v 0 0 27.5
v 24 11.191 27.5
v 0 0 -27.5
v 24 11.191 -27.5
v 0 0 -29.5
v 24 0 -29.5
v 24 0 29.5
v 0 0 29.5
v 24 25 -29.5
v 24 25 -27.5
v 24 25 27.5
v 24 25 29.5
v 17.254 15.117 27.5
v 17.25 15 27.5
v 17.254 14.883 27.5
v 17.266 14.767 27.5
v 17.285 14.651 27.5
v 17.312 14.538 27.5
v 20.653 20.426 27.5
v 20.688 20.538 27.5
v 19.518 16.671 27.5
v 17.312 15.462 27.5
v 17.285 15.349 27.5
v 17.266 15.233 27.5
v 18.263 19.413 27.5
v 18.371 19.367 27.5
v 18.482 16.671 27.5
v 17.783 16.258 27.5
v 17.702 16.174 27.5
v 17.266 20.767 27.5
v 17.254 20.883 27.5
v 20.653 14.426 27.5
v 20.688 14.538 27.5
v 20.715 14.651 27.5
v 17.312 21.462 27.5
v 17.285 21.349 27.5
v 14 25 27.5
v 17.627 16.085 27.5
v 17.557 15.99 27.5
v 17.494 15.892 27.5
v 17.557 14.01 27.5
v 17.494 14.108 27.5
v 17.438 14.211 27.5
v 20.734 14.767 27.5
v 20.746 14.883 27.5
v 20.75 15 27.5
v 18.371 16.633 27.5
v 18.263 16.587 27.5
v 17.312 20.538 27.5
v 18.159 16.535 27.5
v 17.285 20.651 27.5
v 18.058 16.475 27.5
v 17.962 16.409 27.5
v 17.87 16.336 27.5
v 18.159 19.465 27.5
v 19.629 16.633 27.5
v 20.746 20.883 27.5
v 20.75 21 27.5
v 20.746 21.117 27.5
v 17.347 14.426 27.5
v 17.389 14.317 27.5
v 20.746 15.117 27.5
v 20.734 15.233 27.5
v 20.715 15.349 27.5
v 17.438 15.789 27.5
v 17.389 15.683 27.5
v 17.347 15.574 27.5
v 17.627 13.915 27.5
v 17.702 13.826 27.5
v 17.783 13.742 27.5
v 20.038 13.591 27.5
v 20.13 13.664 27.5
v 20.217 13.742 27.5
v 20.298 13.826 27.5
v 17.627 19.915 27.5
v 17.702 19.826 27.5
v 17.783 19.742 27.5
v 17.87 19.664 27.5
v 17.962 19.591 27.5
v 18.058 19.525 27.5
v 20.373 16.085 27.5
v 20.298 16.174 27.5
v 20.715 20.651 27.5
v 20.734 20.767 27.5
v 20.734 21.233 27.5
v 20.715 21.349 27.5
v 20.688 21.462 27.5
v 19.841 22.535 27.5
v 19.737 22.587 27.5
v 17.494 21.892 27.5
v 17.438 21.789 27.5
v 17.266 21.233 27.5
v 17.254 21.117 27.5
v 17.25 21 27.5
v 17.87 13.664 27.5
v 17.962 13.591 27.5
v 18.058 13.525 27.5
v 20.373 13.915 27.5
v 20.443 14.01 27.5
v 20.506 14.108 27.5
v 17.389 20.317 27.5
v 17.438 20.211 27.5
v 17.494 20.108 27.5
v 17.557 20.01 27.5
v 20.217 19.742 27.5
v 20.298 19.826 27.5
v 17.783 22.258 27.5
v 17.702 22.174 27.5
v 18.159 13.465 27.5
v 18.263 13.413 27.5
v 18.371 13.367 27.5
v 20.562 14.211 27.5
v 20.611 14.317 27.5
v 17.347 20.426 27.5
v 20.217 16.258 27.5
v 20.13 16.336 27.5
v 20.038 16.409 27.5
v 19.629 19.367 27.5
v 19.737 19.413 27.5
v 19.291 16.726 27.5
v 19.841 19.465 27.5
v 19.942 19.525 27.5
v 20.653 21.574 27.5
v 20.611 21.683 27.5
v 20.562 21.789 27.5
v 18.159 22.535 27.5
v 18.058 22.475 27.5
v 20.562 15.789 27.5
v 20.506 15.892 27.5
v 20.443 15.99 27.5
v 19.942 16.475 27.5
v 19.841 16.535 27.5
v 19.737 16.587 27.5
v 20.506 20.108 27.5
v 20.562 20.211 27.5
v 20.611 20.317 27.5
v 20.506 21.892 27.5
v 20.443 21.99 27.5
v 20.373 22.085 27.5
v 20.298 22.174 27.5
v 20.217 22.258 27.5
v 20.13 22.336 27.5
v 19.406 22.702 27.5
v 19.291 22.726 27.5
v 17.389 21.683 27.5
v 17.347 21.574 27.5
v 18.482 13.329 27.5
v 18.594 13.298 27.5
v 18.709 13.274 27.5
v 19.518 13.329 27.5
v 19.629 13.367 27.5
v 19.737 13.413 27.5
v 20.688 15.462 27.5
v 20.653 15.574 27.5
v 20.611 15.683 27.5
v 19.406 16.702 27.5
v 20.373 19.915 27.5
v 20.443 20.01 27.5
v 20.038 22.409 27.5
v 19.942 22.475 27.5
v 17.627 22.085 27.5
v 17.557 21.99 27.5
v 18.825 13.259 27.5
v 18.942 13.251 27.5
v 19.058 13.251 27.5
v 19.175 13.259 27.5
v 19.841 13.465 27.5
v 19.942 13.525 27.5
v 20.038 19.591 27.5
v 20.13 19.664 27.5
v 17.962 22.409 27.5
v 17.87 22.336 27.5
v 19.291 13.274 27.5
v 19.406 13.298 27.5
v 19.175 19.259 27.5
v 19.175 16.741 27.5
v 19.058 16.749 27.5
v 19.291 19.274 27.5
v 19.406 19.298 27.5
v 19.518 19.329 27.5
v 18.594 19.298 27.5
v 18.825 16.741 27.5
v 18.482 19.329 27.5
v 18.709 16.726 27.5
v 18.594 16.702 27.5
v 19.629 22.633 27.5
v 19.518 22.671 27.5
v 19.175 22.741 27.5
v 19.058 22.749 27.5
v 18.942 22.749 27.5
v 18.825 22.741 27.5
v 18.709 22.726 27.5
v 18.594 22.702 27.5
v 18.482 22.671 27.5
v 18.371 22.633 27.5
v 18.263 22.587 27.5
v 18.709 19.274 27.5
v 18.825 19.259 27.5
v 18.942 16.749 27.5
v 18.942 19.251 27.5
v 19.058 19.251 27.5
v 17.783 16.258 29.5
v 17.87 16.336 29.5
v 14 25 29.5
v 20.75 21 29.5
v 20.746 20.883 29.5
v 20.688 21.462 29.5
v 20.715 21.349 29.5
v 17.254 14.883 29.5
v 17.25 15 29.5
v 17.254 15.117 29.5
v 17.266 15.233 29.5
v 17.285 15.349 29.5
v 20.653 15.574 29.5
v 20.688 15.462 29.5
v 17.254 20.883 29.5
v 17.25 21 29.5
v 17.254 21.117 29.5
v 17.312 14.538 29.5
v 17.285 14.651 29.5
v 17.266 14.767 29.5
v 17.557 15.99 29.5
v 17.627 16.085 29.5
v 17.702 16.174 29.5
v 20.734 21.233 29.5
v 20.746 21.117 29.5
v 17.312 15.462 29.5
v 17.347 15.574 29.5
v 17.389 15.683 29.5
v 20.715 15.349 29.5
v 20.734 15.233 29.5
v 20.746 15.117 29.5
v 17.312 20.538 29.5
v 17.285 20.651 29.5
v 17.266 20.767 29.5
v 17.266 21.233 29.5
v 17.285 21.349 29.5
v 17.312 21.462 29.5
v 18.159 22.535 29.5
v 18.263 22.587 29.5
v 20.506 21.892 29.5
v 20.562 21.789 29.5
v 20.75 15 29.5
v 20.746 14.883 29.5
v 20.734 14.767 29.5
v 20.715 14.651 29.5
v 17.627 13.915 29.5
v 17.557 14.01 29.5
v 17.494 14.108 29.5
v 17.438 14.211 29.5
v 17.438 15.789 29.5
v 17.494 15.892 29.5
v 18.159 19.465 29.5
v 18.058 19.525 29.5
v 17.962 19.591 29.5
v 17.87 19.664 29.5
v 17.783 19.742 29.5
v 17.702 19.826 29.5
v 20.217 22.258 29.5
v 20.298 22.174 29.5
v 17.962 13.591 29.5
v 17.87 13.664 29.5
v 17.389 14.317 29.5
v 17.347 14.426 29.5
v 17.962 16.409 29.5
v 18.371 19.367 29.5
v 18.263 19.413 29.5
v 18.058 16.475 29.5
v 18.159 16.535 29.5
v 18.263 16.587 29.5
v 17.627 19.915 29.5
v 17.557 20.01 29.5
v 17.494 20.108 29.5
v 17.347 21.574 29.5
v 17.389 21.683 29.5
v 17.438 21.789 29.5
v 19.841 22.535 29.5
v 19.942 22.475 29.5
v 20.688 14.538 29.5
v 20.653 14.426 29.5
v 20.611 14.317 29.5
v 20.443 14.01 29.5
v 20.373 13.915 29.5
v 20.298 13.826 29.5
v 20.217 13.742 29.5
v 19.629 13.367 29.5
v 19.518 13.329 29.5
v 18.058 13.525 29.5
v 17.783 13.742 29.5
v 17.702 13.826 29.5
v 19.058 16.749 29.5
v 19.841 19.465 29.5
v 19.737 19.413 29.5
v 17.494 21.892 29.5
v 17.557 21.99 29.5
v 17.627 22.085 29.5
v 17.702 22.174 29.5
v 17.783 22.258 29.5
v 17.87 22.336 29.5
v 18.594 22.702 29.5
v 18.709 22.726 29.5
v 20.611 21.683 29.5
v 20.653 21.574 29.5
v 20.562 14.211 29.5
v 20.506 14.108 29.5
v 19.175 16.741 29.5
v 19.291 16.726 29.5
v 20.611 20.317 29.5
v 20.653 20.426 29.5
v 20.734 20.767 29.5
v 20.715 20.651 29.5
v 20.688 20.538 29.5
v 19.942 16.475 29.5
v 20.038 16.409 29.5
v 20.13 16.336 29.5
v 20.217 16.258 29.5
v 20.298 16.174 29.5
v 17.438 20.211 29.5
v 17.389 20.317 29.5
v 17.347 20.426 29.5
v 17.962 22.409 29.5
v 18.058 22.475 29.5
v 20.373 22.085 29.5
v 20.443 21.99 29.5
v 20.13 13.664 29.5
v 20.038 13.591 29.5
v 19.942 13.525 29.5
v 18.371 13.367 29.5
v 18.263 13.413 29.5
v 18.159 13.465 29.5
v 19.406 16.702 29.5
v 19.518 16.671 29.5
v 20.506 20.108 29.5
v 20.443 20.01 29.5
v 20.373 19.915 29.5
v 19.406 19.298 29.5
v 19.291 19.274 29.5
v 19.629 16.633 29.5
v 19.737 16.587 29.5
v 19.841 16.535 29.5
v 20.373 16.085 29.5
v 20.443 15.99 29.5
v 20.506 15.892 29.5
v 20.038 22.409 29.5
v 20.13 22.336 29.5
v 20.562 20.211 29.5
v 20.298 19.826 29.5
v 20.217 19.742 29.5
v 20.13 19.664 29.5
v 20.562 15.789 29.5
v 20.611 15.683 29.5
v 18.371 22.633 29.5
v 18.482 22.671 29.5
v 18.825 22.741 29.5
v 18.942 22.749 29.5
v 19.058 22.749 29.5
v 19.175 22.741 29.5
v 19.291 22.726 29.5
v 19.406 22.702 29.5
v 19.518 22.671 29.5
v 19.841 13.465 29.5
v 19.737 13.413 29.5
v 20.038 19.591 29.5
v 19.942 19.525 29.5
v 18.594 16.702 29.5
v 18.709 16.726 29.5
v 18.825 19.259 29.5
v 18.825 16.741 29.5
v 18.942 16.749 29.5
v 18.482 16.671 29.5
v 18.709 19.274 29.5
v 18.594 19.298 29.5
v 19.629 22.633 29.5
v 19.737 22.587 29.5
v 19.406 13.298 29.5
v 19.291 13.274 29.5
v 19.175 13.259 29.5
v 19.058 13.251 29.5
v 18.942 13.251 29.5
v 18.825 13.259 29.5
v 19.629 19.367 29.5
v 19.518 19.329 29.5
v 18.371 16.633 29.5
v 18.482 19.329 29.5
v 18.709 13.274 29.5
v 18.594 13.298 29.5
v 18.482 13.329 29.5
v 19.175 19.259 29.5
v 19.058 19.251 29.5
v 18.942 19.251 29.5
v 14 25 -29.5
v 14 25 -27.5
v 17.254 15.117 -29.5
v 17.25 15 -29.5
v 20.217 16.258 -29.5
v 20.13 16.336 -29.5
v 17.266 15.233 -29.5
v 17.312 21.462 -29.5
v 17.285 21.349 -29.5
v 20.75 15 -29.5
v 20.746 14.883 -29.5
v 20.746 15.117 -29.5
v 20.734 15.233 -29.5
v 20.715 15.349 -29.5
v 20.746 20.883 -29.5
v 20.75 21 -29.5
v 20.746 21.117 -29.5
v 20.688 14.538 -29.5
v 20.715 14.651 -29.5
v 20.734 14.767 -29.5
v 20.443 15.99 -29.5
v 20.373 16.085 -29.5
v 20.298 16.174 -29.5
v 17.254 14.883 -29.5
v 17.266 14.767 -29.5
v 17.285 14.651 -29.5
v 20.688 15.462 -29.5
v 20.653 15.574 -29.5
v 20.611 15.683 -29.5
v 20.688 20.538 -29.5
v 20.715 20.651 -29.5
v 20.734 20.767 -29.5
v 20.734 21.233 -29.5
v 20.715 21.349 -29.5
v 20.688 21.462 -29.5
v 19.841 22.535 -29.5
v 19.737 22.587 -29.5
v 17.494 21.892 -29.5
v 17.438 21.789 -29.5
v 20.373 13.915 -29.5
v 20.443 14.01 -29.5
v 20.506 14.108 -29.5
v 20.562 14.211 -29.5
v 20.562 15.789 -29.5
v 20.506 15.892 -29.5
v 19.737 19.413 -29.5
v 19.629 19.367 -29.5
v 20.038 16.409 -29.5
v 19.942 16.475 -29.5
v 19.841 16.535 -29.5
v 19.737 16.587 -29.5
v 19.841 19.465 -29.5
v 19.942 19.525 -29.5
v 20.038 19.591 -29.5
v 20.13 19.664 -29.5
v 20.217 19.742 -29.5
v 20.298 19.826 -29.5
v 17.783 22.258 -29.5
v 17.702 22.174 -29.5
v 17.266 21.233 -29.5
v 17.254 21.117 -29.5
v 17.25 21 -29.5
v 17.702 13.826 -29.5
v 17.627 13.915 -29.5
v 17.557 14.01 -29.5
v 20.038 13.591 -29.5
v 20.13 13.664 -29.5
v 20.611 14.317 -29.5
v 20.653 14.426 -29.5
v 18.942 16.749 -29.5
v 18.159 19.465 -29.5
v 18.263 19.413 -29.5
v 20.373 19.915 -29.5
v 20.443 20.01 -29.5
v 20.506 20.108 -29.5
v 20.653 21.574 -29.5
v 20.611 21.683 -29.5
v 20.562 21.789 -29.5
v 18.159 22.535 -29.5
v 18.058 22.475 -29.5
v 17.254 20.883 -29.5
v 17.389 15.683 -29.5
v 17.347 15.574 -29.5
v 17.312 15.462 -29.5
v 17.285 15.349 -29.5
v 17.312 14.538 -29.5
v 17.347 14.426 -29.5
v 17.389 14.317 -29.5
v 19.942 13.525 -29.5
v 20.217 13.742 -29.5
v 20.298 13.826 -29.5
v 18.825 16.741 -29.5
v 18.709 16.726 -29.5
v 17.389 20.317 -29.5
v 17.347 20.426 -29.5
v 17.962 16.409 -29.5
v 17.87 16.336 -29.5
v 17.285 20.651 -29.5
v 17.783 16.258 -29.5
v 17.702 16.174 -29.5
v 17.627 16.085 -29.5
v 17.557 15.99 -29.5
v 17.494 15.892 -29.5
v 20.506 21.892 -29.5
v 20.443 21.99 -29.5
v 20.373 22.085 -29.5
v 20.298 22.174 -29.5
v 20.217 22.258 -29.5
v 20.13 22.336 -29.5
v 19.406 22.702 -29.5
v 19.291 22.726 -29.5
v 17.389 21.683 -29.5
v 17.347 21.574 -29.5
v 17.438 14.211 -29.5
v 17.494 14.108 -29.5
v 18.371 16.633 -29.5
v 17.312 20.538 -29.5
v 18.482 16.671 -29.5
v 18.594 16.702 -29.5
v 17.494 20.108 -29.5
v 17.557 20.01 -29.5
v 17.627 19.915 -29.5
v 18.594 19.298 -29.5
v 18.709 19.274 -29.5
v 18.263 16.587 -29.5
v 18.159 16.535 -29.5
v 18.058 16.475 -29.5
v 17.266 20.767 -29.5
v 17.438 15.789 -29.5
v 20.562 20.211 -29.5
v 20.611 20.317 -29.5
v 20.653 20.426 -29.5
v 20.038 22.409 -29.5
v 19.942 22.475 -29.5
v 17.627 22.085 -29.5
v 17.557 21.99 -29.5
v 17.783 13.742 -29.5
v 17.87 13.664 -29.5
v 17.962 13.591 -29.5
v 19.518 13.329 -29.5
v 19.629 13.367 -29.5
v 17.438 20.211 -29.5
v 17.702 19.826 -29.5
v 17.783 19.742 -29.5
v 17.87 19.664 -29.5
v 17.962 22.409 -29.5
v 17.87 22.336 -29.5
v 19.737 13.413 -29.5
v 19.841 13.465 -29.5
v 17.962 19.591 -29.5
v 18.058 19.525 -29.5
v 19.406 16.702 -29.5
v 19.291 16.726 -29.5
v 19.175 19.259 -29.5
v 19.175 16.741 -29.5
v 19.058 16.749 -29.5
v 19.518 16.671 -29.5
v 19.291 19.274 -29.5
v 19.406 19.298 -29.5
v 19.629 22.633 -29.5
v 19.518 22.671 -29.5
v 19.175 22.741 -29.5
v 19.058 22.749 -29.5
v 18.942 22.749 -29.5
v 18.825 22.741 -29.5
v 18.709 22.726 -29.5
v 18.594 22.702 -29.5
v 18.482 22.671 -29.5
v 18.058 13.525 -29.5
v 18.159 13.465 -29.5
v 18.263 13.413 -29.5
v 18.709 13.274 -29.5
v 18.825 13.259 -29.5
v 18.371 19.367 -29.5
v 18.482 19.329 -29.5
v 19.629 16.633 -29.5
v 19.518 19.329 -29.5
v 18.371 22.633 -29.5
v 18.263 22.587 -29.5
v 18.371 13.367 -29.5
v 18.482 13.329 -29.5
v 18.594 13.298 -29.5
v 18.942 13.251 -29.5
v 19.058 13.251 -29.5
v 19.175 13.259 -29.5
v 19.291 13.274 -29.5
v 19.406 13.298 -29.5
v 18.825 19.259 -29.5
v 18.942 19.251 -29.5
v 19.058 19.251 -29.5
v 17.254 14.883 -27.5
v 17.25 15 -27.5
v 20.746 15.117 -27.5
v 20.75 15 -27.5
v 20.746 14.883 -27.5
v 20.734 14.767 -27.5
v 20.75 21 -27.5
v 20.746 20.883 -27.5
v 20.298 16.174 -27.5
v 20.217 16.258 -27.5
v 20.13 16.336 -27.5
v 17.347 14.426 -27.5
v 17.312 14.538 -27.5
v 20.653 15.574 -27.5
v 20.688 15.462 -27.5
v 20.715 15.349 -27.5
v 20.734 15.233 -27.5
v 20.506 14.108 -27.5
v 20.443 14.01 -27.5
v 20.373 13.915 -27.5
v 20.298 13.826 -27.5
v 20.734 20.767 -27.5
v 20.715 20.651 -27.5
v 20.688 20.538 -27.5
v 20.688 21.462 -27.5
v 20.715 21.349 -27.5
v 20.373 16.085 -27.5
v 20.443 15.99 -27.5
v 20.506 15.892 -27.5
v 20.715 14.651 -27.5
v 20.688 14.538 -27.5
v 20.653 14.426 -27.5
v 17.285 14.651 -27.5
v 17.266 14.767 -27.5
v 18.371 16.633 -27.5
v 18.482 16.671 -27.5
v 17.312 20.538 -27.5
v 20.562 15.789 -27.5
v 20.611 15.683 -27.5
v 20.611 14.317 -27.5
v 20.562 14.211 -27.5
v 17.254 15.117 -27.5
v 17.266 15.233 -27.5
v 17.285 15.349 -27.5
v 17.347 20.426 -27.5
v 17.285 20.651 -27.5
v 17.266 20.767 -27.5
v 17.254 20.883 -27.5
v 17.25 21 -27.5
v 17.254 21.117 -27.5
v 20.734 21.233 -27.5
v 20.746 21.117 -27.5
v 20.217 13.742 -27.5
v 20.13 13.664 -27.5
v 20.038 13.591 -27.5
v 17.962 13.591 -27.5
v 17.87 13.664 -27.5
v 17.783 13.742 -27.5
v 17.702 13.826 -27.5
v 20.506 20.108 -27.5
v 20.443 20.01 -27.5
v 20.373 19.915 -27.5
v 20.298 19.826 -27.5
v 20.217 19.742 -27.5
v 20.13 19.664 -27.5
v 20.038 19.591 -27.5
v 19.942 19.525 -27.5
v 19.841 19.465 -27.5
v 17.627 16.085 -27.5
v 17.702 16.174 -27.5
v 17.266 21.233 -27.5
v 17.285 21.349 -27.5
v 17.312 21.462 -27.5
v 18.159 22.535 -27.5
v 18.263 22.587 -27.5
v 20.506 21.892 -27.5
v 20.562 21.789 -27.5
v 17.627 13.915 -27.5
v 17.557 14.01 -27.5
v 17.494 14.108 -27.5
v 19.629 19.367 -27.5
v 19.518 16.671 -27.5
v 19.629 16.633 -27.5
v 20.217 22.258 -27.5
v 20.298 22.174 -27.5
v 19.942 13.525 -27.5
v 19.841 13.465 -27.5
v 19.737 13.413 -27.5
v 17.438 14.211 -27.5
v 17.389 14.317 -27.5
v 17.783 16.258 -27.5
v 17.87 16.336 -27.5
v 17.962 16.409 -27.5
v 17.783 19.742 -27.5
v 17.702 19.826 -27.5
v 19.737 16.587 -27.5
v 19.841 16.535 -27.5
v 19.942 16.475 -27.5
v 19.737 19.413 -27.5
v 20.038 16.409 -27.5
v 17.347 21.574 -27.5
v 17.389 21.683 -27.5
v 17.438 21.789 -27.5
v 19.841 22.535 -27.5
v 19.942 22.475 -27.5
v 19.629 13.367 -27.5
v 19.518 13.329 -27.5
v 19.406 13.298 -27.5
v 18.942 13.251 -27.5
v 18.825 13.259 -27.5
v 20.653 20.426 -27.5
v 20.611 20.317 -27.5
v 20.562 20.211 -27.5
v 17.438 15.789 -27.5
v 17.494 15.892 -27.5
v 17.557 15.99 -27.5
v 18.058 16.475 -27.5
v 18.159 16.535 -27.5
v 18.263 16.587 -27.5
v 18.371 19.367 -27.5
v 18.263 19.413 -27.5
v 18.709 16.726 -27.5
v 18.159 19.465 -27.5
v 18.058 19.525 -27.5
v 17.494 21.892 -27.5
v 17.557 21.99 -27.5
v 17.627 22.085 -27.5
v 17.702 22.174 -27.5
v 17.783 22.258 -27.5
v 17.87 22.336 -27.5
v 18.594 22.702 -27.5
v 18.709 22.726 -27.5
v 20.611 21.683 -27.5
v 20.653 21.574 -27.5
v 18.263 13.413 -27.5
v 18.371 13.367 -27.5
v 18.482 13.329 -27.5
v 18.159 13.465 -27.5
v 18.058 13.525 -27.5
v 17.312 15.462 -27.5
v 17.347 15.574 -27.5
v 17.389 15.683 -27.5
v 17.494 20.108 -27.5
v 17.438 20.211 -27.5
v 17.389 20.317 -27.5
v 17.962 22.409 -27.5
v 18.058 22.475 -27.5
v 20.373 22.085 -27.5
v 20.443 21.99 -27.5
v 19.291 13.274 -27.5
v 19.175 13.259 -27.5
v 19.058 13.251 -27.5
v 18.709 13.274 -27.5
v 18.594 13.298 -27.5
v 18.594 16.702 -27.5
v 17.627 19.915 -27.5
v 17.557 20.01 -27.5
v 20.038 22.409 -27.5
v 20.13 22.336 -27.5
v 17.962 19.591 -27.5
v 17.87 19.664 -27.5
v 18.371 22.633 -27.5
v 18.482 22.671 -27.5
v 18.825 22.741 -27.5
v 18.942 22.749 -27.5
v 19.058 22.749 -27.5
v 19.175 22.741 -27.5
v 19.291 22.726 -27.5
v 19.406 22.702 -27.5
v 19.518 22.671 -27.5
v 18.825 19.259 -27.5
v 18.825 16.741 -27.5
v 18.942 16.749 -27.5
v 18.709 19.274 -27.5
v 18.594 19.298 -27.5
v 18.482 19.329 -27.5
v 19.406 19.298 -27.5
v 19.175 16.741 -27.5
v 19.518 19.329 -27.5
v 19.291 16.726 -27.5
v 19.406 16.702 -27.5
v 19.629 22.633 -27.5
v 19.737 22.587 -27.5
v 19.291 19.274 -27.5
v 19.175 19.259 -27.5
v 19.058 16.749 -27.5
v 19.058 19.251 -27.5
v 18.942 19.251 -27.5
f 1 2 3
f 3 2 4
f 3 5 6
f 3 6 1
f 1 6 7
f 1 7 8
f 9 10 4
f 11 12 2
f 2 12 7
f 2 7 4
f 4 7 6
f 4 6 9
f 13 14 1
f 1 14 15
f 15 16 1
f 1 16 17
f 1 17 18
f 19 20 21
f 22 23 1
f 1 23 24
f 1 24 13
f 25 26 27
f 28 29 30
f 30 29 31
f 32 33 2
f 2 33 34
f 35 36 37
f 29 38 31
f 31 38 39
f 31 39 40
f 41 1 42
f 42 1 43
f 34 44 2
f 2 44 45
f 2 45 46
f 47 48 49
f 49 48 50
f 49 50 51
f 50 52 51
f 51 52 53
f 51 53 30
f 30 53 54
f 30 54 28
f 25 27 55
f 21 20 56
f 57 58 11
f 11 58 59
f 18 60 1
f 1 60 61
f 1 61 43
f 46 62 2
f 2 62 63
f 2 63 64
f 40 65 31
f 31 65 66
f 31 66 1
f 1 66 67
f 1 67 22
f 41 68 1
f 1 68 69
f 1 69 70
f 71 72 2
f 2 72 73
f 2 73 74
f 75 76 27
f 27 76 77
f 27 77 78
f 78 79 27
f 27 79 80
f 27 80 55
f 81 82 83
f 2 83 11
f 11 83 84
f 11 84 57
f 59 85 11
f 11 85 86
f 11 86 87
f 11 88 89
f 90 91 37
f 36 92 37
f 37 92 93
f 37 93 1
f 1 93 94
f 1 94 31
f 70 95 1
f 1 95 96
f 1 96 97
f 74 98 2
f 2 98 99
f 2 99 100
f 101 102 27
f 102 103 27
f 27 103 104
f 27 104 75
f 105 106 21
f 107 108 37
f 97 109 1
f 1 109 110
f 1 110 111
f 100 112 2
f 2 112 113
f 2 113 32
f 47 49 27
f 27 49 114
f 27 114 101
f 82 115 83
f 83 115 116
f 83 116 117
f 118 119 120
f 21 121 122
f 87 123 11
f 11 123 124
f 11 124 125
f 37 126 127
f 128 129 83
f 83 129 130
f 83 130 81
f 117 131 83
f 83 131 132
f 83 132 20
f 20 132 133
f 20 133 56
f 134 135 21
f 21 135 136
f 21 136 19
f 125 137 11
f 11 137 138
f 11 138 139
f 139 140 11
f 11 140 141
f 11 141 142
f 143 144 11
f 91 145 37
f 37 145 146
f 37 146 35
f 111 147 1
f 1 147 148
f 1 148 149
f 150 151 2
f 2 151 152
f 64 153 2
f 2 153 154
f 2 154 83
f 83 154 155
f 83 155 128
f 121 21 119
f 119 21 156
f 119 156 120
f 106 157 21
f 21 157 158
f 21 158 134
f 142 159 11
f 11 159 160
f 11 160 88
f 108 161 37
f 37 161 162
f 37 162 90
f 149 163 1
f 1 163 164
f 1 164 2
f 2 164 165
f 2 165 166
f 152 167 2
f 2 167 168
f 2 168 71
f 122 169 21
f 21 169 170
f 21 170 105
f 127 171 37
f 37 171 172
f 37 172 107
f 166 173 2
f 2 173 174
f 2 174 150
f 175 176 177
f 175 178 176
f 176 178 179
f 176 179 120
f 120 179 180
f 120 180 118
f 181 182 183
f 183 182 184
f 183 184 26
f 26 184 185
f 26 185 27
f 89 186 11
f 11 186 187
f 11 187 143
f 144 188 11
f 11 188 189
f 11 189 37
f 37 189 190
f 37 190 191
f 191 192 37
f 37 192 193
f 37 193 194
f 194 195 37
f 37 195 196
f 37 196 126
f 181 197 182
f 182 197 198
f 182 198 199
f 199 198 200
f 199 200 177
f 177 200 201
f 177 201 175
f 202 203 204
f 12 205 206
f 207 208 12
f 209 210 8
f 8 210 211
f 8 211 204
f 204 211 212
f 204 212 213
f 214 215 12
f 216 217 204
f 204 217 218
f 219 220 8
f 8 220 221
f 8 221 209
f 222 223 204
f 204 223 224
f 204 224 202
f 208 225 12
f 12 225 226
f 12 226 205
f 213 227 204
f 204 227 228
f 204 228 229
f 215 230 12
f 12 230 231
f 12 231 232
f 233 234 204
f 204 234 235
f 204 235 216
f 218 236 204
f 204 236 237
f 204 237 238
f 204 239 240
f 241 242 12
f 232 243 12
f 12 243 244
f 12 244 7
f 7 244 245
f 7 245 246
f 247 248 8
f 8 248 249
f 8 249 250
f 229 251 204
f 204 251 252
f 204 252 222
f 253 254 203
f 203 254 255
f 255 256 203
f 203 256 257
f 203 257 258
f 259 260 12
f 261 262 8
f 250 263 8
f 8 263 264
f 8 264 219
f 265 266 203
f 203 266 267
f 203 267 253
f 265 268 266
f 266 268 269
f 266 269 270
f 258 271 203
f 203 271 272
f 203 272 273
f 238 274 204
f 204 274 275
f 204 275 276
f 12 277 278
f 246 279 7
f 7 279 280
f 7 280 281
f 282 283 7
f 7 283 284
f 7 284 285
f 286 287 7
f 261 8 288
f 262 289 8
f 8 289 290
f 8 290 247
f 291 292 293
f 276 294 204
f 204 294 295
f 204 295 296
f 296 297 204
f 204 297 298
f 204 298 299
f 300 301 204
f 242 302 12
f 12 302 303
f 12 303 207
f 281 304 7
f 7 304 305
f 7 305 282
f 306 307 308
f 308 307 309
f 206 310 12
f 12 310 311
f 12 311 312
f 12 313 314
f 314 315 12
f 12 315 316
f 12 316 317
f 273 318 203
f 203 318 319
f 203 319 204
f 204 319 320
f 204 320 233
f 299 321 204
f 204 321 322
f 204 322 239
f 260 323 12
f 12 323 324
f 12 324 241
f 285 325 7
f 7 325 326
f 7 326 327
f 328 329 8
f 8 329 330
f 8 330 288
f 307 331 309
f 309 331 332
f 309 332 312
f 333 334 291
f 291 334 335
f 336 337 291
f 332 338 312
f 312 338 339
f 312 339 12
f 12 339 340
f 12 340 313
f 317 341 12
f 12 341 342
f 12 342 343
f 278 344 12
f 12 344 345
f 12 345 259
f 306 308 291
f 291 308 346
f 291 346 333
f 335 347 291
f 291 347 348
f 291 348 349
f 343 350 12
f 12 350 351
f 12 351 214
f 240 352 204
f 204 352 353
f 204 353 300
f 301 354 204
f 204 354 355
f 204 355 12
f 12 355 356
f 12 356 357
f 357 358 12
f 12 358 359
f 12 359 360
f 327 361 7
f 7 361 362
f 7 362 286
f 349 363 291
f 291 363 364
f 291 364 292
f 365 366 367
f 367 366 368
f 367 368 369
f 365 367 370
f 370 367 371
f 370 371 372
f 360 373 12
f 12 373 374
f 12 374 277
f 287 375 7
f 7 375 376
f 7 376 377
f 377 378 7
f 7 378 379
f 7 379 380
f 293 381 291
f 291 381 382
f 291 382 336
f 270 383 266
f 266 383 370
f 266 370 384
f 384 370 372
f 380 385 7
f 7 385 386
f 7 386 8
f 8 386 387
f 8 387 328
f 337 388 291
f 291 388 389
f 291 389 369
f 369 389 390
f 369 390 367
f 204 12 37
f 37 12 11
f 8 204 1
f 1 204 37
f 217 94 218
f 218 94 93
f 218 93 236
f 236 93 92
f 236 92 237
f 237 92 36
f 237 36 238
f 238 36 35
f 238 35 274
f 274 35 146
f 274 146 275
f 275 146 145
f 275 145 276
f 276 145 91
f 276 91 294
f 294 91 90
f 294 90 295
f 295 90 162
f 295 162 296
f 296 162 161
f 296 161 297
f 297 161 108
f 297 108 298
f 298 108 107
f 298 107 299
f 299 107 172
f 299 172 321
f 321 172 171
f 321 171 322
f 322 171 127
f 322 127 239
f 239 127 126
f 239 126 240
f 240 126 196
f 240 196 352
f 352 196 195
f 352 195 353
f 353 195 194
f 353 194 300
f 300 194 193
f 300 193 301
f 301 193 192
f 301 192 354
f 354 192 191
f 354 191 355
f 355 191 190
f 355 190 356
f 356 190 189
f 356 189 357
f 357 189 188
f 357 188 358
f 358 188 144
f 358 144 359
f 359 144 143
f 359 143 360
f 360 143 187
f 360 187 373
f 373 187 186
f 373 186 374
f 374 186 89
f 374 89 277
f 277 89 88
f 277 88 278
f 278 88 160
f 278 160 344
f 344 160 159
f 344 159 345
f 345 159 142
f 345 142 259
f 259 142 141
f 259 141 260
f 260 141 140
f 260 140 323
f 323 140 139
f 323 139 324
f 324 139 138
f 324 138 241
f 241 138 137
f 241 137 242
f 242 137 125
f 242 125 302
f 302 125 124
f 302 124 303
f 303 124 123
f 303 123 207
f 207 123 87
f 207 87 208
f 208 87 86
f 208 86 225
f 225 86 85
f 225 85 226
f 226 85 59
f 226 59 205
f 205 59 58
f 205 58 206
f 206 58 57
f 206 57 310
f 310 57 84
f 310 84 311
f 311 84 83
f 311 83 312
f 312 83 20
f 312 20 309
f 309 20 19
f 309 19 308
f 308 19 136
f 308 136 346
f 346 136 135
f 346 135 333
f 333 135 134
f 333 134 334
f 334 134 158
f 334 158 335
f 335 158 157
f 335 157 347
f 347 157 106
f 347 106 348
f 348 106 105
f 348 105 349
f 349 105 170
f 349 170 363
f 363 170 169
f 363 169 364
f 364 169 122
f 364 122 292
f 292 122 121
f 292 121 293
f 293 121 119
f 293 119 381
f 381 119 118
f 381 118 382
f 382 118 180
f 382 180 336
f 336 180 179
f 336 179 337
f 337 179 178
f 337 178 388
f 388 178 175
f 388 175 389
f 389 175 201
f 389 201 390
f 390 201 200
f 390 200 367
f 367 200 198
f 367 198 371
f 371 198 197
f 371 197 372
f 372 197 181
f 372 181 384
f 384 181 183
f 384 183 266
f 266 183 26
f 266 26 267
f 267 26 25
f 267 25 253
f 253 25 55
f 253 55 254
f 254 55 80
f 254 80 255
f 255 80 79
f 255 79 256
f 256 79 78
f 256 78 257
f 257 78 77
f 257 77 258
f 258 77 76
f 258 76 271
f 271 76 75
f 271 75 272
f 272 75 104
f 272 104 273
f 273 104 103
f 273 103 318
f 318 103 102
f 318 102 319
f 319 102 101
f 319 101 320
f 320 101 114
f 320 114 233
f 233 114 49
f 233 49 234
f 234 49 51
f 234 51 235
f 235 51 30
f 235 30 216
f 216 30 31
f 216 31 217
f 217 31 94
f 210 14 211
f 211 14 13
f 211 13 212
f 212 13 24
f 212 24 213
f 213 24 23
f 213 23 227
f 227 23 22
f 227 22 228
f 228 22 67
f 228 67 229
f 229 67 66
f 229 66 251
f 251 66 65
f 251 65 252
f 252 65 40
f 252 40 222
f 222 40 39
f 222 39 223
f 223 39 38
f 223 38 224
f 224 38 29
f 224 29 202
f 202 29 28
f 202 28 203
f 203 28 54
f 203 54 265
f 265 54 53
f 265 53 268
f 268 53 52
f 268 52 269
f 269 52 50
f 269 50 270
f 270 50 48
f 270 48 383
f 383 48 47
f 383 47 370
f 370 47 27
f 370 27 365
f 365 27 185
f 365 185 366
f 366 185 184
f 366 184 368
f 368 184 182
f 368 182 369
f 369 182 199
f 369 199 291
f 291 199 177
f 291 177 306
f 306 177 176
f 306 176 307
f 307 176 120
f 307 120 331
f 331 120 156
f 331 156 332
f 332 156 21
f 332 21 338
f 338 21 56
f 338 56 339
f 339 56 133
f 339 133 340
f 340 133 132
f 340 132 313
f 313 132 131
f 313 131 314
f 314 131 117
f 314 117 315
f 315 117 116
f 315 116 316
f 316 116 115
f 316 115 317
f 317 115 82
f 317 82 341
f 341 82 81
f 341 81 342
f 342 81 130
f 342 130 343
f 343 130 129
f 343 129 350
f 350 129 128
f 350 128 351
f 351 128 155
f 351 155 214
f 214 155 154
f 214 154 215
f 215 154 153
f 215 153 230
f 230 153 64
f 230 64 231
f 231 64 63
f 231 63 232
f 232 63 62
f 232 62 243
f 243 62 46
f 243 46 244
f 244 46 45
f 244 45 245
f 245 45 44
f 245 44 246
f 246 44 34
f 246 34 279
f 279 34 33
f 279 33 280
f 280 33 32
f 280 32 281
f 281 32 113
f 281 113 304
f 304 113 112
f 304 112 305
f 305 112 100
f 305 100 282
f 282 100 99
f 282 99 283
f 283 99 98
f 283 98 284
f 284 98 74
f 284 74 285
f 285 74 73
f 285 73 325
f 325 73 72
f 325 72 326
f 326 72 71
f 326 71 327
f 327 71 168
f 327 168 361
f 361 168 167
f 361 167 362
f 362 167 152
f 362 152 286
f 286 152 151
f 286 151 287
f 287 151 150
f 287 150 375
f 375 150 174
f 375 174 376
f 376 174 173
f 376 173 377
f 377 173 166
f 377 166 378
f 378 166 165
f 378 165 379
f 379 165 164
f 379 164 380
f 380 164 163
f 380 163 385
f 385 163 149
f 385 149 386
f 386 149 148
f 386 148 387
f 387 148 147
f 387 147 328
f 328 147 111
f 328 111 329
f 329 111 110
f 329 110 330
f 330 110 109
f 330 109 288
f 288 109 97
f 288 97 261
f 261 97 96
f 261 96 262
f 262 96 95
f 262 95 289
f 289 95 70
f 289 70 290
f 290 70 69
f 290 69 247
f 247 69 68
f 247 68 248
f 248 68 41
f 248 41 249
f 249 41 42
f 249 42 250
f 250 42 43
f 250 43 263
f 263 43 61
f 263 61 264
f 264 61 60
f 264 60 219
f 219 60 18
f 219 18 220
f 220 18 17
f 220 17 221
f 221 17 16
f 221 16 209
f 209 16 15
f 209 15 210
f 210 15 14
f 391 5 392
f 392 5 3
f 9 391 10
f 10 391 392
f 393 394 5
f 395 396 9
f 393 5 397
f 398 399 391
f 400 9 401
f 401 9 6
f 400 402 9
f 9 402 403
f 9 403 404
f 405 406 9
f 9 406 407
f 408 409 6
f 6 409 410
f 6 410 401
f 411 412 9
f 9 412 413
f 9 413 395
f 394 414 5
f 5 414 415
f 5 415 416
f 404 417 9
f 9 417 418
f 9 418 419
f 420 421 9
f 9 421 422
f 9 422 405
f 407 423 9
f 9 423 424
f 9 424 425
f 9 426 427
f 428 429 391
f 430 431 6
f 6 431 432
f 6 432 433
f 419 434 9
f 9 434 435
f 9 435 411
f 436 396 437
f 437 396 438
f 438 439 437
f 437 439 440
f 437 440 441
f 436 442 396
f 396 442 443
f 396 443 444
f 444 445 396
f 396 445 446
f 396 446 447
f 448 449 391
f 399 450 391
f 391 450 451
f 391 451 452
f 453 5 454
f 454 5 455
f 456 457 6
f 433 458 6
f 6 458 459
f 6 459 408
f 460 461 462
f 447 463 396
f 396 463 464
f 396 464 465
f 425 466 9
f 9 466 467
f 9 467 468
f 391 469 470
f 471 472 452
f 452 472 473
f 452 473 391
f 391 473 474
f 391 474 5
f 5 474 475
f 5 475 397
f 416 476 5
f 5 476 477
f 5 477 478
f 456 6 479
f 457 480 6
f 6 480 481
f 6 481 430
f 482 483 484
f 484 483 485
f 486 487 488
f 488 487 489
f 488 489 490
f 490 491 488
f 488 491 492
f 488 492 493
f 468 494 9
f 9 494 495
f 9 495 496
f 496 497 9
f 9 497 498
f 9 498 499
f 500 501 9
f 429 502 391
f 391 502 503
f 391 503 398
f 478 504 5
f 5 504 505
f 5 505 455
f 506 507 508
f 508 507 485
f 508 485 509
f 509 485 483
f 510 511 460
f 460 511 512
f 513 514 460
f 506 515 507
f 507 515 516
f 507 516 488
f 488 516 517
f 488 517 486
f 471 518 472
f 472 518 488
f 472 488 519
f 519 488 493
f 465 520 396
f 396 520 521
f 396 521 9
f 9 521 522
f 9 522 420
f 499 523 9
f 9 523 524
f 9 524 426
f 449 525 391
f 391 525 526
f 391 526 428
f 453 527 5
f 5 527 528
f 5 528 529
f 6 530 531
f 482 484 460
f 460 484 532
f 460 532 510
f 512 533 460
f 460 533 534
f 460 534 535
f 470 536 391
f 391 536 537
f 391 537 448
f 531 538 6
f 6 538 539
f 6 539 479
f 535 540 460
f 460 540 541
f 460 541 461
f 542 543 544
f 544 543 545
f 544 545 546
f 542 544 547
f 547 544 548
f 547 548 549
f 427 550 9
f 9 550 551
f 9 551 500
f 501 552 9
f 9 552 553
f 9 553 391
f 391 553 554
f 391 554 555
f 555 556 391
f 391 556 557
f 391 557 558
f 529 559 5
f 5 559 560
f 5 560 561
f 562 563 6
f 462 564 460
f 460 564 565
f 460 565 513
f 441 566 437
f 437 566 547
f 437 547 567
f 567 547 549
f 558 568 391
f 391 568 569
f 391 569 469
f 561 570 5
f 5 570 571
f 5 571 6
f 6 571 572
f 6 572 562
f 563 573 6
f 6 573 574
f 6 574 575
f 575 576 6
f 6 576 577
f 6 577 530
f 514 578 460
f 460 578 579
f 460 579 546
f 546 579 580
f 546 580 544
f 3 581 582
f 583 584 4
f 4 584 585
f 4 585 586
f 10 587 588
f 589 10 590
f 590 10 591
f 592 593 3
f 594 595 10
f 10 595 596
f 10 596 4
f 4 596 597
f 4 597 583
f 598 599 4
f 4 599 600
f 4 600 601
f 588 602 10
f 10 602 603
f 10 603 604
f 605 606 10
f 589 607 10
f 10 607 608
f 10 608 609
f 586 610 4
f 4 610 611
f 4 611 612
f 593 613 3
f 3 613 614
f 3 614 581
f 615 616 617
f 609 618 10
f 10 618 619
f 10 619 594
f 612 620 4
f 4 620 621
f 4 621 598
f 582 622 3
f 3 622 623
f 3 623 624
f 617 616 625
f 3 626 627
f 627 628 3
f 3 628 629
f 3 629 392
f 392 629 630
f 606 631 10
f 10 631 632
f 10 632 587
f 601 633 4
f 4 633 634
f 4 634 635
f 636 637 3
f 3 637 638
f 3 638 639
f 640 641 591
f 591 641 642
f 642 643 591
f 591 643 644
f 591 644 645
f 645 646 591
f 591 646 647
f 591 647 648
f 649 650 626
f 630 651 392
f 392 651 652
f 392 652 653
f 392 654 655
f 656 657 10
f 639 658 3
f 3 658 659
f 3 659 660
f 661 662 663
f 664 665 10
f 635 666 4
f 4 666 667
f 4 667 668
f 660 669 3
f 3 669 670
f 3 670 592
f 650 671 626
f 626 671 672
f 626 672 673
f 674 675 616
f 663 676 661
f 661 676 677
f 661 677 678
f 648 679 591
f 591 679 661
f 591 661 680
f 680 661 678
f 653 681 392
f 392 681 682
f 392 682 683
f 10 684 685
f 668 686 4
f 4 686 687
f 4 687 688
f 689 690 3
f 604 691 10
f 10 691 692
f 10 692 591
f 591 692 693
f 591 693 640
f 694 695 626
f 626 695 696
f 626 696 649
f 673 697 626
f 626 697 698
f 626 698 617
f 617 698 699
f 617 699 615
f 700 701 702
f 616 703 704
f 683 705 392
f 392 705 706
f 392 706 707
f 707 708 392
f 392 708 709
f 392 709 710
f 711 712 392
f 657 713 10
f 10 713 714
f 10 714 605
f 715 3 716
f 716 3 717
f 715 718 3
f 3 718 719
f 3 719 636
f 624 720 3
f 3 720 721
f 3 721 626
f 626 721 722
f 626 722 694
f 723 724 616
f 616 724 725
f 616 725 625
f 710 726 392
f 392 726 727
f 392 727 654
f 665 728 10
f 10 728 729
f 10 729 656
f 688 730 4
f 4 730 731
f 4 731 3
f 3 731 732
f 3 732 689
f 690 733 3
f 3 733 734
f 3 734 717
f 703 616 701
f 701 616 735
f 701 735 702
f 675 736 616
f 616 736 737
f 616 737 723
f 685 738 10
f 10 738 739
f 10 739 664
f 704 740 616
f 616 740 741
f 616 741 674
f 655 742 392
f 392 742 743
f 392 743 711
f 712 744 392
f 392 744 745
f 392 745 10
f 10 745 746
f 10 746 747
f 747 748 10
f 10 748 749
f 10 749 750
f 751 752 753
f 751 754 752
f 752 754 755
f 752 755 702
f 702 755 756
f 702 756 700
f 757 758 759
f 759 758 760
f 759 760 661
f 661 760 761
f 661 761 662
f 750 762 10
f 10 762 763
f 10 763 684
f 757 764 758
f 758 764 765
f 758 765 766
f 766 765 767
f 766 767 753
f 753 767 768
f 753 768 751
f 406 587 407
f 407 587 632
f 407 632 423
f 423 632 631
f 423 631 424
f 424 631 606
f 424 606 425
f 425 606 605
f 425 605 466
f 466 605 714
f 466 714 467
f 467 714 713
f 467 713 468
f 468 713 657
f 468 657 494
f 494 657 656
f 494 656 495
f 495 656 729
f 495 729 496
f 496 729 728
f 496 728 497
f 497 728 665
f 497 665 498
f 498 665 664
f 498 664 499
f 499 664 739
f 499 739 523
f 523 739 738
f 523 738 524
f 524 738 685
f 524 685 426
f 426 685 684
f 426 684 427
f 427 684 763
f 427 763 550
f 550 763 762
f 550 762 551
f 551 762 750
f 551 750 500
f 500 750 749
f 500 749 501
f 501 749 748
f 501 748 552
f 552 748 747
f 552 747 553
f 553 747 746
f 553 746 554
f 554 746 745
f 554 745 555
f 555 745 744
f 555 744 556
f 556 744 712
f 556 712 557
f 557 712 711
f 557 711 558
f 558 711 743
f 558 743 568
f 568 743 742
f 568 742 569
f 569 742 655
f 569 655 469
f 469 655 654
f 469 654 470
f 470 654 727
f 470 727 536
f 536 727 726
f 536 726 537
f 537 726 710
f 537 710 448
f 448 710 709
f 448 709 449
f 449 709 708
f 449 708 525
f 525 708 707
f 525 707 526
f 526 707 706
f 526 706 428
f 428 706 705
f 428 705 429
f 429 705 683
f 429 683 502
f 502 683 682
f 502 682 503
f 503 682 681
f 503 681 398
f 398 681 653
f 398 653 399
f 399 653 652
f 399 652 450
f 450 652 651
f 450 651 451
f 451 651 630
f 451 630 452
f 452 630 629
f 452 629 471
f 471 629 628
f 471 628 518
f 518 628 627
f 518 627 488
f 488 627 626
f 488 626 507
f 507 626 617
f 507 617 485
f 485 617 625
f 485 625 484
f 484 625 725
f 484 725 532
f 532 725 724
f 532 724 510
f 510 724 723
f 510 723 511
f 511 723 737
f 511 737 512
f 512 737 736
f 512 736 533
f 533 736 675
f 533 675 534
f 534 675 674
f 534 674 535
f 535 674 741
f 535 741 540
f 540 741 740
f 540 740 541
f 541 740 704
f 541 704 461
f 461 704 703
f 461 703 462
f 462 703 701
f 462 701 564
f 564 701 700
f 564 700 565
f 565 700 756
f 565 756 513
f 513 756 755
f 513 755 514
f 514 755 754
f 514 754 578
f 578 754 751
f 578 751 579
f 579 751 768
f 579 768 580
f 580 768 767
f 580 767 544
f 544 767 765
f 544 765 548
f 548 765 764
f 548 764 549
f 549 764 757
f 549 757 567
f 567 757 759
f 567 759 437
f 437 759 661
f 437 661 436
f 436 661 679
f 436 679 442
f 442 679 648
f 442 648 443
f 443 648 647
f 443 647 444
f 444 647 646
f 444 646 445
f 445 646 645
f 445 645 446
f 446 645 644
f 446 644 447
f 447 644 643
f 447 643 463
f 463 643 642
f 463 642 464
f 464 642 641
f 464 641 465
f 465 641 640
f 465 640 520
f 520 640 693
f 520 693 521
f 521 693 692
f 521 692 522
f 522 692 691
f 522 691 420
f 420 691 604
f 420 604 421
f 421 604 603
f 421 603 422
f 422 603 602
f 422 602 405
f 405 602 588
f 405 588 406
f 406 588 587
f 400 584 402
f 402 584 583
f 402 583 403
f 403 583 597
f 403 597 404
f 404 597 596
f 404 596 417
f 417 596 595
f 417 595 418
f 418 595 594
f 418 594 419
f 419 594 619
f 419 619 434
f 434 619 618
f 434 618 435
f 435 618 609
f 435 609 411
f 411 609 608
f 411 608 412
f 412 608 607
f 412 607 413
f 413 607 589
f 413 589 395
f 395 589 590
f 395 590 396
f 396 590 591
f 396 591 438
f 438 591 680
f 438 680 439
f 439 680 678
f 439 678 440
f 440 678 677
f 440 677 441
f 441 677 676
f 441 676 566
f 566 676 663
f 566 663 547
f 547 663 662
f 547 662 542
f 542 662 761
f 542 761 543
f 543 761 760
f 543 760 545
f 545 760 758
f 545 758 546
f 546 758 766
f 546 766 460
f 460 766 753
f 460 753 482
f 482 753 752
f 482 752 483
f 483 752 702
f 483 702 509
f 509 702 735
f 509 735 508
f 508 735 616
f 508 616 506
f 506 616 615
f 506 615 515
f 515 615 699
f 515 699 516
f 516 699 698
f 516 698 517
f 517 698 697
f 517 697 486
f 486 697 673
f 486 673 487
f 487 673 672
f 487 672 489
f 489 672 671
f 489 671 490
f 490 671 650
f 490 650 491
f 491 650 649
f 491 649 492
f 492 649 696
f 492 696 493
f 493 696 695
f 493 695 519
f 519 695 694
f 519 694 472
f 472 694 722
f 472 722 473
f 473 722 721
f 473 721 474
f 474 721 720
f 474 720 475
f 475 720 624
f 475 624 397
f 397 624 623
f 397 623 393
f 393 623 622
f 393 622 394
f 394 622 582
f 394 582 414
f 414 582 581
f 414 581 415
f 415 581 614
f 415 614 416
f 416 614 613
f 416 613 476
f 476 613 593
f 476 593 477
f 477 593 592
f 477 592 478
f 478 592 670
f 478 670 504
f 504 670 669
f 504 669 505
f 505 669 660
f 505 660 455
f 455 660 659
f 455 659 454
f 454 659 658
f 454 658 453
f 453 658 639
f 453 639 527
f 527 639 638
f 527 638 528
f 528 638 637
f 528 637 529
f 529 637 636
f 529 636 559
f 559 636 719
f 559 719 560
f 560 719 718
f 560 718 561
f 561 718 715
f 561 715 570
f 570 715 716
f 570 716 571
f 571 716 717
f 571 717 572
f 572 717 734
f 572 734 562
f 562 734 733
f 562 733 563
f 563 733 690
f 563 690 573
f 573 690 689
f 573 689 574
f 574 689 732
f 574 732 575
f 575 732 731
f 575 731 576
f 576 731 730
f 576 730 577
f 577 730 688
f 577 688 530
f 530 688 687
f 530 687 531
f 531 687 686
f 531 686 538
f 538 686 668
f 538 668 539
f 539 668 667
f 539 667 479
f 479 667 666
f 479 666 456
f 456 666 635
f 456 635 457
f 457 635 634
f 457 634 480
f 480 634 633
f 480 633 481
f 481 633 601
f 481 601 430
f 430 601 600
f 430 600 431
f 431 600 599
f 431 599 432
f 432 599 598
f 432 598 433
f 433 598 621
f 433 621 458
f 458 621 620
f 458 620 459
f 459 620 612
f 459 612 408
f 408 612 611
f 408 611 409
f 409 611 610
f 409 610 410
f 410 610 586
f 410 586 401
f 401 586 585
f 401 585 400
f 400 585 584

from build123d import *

# Parameters (mm, degrees)
BOSS_EXTRUDE1_DEPTH = 27.5
SKETCH2_R           = 1.75
BOSS_EXTRUDE2_DEPTH = 2


with BuildPart() as part:
    # Sketch1 → Boss-Extrude1 (new, symmetric)
    with BuildSketch(Plane.XY):
        Polygon((0, 0), (24, 0), (24, 11.191383796), align=None)
    extrude(amount=BOSS_EXTRUDE1_DEPTH, both=True)

    # Sketch2 → Boss-Extrude2 (add)
    with BuildSketch(Plane.XY.offset(27.5)):
        Polygon((24, 0), (24, 25), (14, 25), (0, 0), align=None)
        with Locations((19, 21)):
            Circle(SKETCH2_R, mode=Mode.SUBTRACT)
        with Locations((19, 15)):
            Circle(SKETCH2_R, mode=Mode.SUBTRACT)
    boss_extrude2 = extrude(amount=BOSS_EXTRUDE2_DEPTH)

    # Mirror1: Boss-Extrude2 across plane
    add(boss_extrude2.mirror(Plane.XY))


solid = part.part
